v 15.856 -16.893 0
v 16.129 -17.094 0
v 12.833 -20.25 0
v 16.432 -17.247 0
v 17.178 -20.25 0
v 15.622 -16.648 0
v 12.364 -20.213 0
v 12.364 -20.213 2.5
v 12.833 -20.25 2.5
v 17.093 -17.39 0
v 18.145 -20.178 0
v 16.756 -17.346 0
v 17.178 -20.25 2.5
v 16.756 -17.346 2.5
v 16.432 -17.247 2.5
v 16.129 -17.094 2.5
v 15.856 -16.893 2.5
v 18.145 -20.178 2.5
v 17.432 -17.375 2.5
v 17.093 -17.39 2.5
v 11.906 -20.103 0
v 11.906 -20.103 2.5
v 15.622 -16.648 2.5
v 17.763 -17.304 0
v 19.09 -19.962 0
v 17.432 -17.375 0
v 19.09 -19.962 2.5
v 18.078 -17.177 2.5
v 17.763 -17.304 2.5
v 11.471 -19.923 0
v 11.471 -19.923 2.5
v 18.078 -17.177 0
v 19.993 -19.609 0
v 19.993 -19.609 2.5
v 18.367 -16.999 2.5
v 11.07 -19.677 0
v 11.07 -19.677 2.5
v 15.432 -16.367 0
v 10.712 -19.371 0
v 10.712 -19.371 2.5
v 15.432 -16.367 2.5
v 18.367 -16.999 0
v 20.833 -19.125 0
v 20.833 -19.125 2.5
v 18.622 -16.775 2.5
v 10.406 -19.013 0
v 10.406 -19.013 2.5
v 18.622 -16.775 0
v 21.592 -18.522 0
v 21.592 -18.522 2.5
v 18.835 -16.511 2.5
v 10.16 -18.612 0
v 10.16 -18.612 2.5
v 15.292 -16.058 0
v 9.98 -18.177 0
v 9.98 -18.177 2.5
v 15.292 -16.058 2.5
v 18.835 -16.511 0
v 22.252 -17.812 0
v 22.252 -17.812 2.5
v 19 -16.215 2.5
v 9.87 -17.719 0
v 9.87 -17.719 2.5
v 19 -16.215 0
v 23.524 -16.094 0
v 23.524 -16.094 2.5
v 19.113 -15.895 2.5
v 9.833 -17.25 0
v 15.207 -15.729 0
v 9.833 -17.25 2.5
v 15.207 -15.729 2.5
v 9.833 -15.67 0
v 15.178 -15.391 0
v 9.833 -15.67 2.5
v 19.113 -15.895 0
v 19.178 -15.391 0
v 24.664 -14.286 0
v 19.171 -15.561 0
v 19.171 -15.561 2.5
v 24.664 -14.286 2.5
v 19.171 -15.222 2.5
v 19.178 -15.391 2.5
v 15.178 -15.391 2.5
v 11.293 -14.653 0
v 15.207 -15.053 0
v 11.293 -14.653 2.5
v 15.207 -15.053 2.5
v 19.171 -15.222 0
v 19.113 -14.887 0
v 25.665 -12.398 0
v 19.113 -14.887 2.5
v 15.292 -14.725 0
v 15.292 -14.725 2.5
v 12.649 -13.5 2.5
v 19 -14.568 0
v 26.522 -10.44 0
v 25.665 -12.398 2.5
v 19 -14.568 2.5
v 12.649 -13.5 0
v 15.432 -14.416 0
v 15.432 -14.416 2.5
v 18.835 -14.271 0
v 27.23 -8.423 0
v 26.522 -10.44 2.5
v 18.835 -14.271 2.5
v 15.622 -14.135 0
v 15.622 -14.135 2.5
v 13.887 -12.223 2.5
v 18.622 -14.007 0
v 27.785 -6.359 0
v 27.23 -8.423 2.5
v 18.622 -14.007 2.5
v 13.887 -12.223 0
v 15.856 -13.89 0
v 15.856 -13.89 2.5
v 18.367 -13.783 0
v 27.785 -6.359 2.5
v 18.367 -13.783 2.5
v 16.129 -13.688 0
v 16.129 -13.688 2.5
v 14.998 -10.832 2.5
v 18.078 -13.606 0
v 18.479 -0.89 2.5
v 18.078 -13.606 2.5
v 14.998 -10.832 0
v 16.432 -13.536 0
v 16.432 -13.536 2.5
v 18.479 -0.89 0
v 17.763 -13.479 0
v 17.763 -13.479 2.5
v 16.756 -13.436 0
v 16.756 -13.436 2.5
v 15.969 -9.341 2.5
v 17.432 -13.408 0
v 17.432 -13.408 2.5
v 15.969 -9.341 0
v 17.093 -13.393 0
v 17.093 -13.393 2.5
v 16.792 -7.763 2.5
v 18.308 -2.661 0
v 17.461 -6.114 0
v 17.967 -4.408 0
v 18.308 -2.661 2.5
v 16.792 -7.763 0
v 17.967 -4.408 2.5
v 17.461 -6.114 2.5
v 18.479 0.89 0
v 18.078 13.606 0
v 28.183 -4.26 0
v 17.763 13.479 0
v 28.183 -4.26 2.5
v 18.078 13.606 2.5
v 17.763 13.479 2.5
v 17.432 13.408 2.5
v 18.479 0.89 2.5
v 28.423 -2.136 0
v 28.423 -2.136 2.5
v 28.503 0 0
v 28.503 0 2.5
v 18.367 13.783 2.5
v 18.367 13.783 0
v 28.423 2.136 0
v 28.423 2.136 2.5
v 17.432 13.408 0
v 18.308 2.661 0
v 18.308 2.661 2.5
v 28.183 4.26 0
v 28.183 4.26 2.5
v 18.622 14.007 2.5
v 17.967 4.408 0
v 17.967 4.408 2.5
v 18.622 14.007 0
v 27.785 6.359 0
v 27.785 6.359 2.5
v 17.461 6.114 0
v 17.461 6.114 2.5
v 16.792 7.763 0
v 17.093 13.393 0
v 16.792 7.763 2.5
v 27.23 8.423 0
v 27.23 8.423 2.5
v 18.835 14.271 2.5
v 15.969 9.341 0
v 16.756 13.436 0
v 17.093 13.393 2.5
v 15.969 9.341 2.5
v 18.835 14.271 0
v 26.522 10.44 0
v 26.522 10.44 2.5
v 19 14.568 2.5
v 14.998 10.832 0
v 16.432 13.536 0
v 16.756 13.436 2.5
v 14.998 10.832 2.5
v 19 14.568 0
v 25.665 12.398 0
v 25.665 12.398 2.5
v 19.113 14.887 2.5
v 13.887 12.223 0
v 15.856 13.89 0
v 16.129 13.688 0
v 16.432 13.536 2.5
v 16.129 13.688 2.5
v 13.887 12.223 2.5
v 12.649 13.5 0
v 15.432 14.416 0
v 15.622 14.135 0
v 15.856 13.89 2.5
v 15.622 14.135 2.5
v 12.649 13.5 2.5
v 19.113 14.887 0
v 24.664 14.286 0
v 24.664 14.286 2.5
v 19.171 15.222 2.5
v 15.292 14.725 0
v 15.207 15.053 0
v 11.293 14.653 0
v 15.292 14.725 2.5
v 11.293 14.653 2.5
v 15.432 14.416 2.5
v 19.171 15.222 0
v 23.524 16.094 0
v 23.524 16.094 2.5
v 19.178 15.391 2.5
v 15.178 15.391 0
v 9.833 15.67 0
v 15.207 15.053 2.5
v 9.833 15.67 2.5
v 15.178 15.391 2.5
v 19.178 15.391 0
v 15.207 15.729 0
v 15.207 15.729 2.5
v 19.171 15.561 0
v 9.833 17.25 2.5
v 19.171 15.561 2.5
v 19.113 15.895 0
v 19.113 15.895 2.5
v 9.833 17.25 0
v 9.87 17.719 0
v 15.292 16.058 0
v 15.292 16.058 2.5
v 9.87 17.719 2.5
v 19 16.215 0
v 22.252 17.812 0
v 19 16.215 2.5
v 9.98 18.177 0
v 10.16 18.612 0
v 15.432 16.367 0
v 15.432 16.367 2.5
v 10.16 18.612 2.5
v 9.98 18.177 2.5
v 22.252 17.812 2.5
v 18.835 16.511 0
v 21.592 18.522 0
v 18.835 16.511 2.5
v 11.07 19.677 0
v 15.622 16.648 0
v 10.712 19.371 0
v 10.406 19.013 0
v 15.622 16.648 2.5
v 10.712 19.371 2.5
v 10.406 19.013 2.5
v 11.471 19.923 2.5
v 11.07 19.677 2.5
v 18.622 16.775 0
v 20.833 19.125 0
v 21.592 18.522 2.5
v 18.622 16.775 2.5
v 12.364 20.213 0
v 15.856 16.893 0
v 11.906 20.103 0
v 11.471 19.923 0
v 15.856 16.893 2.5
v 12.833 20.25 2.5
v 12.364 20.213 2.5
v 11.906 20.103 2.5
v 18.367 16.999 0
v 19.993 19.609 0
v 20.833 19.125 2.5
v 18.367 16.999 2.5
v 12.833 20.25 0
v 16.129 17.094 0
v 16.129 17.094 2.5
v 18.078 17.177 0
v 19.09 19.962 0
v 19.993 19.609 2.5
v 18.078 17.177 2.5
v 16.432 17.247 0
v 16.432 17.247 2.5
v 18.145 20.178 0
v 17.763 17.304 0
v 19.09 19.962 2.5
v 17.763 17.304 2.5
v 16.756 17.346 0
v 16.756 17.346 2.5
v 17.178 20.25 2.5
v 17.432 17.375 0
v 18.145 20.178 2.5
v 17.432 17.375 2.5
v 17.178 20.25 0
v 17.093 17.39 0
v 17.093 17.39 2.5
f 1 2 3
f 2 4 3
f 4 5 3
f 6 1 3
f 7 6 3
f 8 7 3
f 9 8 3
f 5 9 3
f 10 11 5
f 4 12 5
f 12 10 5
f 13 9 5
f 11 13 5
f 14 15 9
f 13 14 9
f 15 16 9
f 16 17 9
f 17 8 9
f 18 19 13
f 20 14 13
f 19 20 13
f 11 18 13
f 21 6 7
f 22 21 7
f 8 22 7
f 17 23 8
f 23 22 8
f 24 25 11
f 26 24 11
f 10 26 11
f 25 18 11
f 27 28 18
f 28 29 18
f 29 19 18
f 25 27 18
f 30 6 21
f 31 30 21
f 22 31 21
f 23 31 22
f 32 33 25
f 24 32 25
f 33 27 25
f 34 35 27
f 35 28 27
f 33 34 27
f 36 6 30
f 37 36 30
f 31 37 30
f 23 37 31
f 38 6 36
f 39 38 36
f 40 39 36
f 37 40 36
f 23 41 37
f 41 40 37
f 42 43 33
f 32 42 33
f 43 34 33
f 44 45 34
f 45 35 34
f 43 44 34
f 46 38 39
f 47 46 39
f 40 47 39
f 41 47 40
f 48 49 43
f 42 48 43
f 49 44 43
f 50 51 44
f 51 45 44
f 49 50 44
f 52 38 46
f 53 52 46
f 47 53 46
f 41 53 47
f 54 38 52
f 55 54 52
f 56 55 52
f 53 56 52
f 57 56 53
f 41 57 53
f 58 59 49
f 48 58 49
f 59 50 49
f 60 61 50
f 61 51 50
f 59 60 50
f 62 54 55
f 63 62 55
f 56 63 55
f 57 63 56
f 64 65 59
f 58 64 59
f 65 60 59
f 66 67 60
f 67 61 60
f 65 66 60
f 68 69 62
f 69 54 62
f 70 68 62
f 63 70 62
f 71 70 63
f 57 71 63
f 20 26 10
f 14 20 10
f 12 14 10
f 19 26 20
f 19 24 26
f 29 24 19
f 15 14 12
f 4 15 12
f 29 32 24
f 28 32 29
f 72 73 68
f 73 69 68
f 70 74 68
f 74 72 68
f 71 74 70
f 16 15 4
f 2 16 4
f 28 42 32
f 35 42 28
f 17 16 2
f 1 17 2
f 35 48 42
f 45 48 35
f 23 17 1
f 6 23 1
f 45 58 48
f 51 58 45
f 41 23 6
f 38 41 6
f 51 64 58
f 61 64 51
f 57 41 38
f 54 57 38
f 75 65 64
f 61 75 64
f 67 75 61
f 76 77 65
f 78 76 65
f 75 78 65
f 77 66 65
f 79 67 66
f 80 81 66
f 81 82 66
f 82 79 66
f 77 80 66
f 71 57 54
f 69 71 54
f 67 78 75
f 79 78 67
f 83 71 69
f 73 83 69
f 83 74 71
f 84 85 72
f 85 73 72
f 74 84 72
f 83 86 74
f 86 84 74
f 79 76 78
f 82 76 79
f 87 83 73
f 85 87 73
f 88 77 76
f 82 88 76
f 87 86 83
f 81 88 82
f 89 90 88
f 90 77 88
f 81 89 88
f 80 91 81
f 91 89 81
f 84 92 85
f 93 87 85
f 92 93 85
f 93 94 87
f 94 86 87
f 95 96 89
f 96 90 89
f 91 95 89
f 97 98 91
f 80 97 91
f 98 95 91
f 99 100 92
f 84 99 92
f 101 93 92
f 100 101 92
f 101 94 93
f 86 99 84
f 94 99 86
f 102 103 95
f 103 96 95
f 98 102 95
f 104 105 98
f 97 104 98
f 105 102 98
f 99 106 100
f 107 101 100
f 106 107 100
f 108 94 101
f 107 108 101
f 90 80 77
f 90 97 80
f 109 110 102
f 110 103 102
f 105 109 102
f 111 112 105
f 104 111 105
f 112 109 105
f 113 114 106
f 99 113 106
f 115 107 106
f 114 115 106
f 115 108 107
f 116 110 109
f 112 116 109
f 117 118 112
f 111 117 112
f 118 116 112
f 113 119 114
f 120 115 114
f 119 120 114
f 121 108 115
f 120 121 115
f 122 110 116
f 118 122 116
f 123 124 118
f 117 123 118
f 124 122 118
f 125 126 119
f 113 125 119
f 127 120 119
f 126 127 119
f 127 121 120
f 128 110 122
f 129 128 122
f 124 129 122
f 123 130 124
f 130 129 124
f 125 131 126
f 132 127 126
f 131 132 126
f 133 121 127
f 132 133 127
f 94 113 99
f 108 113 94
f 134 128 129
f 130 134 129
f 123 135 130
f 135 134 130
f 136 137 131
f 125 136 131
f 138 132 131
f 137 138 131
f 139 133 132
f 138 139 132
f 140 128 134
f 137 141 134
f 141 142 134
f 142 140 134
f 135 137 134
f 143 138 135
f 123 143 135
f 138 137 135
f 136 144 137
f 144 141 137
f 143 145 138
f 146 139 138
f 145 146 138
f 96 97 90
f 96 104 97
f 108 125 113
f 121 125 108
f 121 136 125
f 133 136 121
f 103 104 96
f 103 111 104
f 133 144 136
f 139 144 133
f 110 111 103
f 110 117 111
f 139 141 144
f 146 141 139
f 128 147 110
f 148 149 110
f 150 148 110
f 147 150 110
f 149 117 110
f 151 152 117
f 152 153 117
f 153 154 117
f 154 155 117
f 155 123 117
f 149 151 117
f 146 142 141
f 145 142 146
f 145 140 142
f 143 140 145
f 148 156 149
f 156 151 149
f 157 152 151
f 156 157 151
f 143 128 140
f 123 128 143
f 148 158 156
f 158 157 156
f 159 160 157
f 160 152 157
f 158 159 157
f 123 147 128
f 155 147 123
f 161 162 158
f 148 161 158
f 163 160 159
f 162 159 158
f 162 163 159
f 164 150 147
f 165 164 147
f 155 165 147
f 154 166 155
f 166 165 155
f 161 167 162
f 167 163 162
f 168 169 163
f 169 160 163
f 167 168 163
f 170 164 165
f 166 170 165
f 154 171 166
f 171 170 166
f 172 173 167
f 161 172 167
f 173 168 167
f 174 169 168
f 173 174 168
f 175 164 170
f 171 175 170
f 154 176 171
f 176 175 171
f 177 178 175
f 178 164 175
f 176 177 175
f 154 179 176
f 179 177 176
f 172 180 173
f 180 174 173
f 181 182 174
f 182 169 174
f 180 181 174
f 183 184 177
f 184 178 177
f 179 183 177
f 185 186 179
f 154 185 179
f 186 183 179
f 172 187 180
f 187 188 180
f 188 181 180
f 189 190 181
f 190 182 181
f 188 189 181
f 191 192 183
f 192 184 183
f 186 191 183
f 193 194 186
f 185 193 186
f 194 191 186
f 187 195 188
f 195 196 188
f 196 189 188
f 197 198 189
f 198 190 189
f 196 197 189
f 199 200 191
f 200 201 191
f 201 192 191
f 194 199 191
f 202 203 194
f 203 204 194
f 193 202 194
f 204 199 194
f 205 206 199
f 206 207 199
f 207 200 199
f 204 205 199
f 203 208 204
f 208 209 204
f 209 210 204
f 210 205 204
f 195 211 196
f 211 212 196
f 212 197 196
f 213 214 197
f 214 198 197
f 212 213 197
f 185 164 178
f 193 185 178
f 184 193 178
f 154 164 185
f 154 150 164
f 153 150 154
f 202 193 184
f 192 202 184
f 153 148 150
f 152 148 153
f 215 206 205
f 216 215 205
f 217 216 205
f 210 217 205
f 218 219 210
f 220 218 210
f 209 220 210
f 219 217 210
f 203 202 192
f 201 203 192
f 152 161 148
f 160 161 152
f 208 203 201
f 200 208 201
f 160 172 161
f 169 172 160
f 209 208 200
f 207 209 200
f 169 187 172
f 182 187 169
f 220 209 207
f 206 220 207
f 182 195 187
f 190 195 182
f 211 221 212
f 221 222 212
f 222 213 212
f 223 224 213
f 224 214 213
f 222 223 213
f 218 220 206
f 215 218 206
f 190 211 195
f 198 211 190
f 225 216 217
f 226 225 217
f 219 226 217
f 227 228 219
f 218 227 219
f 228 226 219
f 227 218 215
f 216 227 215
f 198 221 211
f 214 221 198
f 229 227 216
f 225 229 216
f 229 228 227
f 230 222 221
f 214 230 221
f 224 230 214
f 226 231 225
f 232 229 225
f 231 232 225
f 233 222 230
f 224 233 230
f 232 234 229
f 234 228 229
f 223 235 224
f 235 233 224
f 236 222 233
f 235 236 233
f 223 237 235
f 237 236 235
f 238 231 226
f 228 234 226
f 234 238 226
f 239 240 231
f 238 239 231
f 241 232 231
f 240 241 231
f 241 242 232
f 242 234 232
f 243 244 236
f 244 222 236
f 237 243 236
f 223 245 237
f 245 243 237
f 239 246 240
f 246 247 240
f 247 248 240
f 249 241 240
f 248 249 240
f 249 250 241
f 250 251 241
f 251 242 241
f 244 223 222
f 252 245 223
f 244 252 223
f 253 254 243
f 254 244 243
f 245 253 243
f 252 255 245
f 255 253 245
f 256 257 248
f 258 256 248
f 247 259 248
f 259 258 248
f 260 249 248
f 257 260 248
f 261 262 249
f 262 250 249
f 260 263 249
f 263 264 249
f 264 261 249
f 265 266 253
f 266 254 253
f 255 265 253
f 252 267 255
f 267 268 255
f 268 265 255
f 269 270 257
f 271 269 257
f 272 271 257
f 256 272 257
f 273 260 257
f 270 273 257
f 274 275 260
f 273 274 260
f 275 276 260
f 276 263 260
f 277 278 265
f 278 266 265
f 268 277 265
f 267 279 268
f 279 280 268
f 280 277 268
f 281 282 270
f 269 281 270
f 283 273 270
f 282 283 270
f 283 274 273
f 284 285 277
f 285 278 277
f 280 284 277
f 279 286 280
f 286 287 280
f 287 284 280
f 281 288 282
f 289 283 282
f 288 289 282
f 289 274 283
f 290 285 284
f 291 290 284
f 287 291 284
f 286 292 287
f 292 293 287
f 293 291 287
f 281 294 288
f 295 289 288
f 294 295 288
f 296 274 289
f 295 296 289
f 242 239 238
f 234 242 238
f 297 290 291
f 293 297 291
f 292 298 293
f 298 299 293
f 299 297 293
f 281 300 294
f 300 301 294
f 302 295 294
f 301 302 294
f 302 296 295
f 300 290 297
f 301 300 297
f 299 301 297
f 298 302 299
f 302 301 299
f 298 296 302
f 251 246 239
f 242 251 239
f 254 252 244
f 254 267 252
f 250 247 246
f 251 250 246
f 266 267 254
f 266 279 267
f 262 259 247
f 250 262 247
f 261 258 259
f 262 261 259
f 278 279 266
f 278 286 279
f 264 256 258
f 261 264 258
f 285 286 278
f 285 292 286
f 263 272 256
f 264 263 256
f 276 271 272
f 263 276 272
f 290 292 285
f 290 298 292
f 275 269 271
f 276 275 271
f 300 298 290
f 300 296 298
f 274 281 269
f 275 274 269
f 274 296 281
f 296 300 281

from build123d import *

# Parameters (mm, degrees)
SKETCH2_R           = 2
BOSS_EXTRUDE1_DEPTH = 2.5


with BuildPart() as part:
    # Sketch2 → Boss-Extrude1 (new body)
    with BuildSketch(Plane.XY):
        with BuildLine():
            Line((17.177810632, 20.25), (12.833062768, 20.25))
            ThreePointArc((12.833062768, 20.25), (10.711742424, 19.371320344), (9.833062768, 17.25))
            Line((9.833062768, 17.25), (9.833062768, 15.670382146))
            ThreePointArc((9.833062768, 15.670382146), (18.5, 0), (9.833062768, -15.670382146))
            Line((9.833062768, -15.670382146), (9.833062768, -17.25))
            ThreePointArc((9.833062768, -17.25), (10.711742424, -19.371320344), (12.833062768, -20.25))
            Line((12.833062768, -20.25), (17.177810632, -20.25))
            ThreePointArc((17.177810632, -20.25), (19.992731544, -19.608858273), (22.252340685, -17.811913926))
            ThreePointArc((22.252340685, -17.811913926), (28.503174274, 0), (22.252340685, 17.811913926))
            ThreePointArc((22.252340685, 17.811913926), (19.992731544, 19.608858273), (17.177810632, 20.25))
        make_face()
        with Locations((17.177810632, -15.391359244)):
            Circle(SKETCH2_R, mode=Mode.SUBTRACT)
        with Locations((17.177810632, 15.391359244)):
            Circle(SKETCH2_R, mode=Mode.SUBTRACT)
    extrude(amount=BOSS_EXTRUDE1_DEPTH)


solid = part.part
